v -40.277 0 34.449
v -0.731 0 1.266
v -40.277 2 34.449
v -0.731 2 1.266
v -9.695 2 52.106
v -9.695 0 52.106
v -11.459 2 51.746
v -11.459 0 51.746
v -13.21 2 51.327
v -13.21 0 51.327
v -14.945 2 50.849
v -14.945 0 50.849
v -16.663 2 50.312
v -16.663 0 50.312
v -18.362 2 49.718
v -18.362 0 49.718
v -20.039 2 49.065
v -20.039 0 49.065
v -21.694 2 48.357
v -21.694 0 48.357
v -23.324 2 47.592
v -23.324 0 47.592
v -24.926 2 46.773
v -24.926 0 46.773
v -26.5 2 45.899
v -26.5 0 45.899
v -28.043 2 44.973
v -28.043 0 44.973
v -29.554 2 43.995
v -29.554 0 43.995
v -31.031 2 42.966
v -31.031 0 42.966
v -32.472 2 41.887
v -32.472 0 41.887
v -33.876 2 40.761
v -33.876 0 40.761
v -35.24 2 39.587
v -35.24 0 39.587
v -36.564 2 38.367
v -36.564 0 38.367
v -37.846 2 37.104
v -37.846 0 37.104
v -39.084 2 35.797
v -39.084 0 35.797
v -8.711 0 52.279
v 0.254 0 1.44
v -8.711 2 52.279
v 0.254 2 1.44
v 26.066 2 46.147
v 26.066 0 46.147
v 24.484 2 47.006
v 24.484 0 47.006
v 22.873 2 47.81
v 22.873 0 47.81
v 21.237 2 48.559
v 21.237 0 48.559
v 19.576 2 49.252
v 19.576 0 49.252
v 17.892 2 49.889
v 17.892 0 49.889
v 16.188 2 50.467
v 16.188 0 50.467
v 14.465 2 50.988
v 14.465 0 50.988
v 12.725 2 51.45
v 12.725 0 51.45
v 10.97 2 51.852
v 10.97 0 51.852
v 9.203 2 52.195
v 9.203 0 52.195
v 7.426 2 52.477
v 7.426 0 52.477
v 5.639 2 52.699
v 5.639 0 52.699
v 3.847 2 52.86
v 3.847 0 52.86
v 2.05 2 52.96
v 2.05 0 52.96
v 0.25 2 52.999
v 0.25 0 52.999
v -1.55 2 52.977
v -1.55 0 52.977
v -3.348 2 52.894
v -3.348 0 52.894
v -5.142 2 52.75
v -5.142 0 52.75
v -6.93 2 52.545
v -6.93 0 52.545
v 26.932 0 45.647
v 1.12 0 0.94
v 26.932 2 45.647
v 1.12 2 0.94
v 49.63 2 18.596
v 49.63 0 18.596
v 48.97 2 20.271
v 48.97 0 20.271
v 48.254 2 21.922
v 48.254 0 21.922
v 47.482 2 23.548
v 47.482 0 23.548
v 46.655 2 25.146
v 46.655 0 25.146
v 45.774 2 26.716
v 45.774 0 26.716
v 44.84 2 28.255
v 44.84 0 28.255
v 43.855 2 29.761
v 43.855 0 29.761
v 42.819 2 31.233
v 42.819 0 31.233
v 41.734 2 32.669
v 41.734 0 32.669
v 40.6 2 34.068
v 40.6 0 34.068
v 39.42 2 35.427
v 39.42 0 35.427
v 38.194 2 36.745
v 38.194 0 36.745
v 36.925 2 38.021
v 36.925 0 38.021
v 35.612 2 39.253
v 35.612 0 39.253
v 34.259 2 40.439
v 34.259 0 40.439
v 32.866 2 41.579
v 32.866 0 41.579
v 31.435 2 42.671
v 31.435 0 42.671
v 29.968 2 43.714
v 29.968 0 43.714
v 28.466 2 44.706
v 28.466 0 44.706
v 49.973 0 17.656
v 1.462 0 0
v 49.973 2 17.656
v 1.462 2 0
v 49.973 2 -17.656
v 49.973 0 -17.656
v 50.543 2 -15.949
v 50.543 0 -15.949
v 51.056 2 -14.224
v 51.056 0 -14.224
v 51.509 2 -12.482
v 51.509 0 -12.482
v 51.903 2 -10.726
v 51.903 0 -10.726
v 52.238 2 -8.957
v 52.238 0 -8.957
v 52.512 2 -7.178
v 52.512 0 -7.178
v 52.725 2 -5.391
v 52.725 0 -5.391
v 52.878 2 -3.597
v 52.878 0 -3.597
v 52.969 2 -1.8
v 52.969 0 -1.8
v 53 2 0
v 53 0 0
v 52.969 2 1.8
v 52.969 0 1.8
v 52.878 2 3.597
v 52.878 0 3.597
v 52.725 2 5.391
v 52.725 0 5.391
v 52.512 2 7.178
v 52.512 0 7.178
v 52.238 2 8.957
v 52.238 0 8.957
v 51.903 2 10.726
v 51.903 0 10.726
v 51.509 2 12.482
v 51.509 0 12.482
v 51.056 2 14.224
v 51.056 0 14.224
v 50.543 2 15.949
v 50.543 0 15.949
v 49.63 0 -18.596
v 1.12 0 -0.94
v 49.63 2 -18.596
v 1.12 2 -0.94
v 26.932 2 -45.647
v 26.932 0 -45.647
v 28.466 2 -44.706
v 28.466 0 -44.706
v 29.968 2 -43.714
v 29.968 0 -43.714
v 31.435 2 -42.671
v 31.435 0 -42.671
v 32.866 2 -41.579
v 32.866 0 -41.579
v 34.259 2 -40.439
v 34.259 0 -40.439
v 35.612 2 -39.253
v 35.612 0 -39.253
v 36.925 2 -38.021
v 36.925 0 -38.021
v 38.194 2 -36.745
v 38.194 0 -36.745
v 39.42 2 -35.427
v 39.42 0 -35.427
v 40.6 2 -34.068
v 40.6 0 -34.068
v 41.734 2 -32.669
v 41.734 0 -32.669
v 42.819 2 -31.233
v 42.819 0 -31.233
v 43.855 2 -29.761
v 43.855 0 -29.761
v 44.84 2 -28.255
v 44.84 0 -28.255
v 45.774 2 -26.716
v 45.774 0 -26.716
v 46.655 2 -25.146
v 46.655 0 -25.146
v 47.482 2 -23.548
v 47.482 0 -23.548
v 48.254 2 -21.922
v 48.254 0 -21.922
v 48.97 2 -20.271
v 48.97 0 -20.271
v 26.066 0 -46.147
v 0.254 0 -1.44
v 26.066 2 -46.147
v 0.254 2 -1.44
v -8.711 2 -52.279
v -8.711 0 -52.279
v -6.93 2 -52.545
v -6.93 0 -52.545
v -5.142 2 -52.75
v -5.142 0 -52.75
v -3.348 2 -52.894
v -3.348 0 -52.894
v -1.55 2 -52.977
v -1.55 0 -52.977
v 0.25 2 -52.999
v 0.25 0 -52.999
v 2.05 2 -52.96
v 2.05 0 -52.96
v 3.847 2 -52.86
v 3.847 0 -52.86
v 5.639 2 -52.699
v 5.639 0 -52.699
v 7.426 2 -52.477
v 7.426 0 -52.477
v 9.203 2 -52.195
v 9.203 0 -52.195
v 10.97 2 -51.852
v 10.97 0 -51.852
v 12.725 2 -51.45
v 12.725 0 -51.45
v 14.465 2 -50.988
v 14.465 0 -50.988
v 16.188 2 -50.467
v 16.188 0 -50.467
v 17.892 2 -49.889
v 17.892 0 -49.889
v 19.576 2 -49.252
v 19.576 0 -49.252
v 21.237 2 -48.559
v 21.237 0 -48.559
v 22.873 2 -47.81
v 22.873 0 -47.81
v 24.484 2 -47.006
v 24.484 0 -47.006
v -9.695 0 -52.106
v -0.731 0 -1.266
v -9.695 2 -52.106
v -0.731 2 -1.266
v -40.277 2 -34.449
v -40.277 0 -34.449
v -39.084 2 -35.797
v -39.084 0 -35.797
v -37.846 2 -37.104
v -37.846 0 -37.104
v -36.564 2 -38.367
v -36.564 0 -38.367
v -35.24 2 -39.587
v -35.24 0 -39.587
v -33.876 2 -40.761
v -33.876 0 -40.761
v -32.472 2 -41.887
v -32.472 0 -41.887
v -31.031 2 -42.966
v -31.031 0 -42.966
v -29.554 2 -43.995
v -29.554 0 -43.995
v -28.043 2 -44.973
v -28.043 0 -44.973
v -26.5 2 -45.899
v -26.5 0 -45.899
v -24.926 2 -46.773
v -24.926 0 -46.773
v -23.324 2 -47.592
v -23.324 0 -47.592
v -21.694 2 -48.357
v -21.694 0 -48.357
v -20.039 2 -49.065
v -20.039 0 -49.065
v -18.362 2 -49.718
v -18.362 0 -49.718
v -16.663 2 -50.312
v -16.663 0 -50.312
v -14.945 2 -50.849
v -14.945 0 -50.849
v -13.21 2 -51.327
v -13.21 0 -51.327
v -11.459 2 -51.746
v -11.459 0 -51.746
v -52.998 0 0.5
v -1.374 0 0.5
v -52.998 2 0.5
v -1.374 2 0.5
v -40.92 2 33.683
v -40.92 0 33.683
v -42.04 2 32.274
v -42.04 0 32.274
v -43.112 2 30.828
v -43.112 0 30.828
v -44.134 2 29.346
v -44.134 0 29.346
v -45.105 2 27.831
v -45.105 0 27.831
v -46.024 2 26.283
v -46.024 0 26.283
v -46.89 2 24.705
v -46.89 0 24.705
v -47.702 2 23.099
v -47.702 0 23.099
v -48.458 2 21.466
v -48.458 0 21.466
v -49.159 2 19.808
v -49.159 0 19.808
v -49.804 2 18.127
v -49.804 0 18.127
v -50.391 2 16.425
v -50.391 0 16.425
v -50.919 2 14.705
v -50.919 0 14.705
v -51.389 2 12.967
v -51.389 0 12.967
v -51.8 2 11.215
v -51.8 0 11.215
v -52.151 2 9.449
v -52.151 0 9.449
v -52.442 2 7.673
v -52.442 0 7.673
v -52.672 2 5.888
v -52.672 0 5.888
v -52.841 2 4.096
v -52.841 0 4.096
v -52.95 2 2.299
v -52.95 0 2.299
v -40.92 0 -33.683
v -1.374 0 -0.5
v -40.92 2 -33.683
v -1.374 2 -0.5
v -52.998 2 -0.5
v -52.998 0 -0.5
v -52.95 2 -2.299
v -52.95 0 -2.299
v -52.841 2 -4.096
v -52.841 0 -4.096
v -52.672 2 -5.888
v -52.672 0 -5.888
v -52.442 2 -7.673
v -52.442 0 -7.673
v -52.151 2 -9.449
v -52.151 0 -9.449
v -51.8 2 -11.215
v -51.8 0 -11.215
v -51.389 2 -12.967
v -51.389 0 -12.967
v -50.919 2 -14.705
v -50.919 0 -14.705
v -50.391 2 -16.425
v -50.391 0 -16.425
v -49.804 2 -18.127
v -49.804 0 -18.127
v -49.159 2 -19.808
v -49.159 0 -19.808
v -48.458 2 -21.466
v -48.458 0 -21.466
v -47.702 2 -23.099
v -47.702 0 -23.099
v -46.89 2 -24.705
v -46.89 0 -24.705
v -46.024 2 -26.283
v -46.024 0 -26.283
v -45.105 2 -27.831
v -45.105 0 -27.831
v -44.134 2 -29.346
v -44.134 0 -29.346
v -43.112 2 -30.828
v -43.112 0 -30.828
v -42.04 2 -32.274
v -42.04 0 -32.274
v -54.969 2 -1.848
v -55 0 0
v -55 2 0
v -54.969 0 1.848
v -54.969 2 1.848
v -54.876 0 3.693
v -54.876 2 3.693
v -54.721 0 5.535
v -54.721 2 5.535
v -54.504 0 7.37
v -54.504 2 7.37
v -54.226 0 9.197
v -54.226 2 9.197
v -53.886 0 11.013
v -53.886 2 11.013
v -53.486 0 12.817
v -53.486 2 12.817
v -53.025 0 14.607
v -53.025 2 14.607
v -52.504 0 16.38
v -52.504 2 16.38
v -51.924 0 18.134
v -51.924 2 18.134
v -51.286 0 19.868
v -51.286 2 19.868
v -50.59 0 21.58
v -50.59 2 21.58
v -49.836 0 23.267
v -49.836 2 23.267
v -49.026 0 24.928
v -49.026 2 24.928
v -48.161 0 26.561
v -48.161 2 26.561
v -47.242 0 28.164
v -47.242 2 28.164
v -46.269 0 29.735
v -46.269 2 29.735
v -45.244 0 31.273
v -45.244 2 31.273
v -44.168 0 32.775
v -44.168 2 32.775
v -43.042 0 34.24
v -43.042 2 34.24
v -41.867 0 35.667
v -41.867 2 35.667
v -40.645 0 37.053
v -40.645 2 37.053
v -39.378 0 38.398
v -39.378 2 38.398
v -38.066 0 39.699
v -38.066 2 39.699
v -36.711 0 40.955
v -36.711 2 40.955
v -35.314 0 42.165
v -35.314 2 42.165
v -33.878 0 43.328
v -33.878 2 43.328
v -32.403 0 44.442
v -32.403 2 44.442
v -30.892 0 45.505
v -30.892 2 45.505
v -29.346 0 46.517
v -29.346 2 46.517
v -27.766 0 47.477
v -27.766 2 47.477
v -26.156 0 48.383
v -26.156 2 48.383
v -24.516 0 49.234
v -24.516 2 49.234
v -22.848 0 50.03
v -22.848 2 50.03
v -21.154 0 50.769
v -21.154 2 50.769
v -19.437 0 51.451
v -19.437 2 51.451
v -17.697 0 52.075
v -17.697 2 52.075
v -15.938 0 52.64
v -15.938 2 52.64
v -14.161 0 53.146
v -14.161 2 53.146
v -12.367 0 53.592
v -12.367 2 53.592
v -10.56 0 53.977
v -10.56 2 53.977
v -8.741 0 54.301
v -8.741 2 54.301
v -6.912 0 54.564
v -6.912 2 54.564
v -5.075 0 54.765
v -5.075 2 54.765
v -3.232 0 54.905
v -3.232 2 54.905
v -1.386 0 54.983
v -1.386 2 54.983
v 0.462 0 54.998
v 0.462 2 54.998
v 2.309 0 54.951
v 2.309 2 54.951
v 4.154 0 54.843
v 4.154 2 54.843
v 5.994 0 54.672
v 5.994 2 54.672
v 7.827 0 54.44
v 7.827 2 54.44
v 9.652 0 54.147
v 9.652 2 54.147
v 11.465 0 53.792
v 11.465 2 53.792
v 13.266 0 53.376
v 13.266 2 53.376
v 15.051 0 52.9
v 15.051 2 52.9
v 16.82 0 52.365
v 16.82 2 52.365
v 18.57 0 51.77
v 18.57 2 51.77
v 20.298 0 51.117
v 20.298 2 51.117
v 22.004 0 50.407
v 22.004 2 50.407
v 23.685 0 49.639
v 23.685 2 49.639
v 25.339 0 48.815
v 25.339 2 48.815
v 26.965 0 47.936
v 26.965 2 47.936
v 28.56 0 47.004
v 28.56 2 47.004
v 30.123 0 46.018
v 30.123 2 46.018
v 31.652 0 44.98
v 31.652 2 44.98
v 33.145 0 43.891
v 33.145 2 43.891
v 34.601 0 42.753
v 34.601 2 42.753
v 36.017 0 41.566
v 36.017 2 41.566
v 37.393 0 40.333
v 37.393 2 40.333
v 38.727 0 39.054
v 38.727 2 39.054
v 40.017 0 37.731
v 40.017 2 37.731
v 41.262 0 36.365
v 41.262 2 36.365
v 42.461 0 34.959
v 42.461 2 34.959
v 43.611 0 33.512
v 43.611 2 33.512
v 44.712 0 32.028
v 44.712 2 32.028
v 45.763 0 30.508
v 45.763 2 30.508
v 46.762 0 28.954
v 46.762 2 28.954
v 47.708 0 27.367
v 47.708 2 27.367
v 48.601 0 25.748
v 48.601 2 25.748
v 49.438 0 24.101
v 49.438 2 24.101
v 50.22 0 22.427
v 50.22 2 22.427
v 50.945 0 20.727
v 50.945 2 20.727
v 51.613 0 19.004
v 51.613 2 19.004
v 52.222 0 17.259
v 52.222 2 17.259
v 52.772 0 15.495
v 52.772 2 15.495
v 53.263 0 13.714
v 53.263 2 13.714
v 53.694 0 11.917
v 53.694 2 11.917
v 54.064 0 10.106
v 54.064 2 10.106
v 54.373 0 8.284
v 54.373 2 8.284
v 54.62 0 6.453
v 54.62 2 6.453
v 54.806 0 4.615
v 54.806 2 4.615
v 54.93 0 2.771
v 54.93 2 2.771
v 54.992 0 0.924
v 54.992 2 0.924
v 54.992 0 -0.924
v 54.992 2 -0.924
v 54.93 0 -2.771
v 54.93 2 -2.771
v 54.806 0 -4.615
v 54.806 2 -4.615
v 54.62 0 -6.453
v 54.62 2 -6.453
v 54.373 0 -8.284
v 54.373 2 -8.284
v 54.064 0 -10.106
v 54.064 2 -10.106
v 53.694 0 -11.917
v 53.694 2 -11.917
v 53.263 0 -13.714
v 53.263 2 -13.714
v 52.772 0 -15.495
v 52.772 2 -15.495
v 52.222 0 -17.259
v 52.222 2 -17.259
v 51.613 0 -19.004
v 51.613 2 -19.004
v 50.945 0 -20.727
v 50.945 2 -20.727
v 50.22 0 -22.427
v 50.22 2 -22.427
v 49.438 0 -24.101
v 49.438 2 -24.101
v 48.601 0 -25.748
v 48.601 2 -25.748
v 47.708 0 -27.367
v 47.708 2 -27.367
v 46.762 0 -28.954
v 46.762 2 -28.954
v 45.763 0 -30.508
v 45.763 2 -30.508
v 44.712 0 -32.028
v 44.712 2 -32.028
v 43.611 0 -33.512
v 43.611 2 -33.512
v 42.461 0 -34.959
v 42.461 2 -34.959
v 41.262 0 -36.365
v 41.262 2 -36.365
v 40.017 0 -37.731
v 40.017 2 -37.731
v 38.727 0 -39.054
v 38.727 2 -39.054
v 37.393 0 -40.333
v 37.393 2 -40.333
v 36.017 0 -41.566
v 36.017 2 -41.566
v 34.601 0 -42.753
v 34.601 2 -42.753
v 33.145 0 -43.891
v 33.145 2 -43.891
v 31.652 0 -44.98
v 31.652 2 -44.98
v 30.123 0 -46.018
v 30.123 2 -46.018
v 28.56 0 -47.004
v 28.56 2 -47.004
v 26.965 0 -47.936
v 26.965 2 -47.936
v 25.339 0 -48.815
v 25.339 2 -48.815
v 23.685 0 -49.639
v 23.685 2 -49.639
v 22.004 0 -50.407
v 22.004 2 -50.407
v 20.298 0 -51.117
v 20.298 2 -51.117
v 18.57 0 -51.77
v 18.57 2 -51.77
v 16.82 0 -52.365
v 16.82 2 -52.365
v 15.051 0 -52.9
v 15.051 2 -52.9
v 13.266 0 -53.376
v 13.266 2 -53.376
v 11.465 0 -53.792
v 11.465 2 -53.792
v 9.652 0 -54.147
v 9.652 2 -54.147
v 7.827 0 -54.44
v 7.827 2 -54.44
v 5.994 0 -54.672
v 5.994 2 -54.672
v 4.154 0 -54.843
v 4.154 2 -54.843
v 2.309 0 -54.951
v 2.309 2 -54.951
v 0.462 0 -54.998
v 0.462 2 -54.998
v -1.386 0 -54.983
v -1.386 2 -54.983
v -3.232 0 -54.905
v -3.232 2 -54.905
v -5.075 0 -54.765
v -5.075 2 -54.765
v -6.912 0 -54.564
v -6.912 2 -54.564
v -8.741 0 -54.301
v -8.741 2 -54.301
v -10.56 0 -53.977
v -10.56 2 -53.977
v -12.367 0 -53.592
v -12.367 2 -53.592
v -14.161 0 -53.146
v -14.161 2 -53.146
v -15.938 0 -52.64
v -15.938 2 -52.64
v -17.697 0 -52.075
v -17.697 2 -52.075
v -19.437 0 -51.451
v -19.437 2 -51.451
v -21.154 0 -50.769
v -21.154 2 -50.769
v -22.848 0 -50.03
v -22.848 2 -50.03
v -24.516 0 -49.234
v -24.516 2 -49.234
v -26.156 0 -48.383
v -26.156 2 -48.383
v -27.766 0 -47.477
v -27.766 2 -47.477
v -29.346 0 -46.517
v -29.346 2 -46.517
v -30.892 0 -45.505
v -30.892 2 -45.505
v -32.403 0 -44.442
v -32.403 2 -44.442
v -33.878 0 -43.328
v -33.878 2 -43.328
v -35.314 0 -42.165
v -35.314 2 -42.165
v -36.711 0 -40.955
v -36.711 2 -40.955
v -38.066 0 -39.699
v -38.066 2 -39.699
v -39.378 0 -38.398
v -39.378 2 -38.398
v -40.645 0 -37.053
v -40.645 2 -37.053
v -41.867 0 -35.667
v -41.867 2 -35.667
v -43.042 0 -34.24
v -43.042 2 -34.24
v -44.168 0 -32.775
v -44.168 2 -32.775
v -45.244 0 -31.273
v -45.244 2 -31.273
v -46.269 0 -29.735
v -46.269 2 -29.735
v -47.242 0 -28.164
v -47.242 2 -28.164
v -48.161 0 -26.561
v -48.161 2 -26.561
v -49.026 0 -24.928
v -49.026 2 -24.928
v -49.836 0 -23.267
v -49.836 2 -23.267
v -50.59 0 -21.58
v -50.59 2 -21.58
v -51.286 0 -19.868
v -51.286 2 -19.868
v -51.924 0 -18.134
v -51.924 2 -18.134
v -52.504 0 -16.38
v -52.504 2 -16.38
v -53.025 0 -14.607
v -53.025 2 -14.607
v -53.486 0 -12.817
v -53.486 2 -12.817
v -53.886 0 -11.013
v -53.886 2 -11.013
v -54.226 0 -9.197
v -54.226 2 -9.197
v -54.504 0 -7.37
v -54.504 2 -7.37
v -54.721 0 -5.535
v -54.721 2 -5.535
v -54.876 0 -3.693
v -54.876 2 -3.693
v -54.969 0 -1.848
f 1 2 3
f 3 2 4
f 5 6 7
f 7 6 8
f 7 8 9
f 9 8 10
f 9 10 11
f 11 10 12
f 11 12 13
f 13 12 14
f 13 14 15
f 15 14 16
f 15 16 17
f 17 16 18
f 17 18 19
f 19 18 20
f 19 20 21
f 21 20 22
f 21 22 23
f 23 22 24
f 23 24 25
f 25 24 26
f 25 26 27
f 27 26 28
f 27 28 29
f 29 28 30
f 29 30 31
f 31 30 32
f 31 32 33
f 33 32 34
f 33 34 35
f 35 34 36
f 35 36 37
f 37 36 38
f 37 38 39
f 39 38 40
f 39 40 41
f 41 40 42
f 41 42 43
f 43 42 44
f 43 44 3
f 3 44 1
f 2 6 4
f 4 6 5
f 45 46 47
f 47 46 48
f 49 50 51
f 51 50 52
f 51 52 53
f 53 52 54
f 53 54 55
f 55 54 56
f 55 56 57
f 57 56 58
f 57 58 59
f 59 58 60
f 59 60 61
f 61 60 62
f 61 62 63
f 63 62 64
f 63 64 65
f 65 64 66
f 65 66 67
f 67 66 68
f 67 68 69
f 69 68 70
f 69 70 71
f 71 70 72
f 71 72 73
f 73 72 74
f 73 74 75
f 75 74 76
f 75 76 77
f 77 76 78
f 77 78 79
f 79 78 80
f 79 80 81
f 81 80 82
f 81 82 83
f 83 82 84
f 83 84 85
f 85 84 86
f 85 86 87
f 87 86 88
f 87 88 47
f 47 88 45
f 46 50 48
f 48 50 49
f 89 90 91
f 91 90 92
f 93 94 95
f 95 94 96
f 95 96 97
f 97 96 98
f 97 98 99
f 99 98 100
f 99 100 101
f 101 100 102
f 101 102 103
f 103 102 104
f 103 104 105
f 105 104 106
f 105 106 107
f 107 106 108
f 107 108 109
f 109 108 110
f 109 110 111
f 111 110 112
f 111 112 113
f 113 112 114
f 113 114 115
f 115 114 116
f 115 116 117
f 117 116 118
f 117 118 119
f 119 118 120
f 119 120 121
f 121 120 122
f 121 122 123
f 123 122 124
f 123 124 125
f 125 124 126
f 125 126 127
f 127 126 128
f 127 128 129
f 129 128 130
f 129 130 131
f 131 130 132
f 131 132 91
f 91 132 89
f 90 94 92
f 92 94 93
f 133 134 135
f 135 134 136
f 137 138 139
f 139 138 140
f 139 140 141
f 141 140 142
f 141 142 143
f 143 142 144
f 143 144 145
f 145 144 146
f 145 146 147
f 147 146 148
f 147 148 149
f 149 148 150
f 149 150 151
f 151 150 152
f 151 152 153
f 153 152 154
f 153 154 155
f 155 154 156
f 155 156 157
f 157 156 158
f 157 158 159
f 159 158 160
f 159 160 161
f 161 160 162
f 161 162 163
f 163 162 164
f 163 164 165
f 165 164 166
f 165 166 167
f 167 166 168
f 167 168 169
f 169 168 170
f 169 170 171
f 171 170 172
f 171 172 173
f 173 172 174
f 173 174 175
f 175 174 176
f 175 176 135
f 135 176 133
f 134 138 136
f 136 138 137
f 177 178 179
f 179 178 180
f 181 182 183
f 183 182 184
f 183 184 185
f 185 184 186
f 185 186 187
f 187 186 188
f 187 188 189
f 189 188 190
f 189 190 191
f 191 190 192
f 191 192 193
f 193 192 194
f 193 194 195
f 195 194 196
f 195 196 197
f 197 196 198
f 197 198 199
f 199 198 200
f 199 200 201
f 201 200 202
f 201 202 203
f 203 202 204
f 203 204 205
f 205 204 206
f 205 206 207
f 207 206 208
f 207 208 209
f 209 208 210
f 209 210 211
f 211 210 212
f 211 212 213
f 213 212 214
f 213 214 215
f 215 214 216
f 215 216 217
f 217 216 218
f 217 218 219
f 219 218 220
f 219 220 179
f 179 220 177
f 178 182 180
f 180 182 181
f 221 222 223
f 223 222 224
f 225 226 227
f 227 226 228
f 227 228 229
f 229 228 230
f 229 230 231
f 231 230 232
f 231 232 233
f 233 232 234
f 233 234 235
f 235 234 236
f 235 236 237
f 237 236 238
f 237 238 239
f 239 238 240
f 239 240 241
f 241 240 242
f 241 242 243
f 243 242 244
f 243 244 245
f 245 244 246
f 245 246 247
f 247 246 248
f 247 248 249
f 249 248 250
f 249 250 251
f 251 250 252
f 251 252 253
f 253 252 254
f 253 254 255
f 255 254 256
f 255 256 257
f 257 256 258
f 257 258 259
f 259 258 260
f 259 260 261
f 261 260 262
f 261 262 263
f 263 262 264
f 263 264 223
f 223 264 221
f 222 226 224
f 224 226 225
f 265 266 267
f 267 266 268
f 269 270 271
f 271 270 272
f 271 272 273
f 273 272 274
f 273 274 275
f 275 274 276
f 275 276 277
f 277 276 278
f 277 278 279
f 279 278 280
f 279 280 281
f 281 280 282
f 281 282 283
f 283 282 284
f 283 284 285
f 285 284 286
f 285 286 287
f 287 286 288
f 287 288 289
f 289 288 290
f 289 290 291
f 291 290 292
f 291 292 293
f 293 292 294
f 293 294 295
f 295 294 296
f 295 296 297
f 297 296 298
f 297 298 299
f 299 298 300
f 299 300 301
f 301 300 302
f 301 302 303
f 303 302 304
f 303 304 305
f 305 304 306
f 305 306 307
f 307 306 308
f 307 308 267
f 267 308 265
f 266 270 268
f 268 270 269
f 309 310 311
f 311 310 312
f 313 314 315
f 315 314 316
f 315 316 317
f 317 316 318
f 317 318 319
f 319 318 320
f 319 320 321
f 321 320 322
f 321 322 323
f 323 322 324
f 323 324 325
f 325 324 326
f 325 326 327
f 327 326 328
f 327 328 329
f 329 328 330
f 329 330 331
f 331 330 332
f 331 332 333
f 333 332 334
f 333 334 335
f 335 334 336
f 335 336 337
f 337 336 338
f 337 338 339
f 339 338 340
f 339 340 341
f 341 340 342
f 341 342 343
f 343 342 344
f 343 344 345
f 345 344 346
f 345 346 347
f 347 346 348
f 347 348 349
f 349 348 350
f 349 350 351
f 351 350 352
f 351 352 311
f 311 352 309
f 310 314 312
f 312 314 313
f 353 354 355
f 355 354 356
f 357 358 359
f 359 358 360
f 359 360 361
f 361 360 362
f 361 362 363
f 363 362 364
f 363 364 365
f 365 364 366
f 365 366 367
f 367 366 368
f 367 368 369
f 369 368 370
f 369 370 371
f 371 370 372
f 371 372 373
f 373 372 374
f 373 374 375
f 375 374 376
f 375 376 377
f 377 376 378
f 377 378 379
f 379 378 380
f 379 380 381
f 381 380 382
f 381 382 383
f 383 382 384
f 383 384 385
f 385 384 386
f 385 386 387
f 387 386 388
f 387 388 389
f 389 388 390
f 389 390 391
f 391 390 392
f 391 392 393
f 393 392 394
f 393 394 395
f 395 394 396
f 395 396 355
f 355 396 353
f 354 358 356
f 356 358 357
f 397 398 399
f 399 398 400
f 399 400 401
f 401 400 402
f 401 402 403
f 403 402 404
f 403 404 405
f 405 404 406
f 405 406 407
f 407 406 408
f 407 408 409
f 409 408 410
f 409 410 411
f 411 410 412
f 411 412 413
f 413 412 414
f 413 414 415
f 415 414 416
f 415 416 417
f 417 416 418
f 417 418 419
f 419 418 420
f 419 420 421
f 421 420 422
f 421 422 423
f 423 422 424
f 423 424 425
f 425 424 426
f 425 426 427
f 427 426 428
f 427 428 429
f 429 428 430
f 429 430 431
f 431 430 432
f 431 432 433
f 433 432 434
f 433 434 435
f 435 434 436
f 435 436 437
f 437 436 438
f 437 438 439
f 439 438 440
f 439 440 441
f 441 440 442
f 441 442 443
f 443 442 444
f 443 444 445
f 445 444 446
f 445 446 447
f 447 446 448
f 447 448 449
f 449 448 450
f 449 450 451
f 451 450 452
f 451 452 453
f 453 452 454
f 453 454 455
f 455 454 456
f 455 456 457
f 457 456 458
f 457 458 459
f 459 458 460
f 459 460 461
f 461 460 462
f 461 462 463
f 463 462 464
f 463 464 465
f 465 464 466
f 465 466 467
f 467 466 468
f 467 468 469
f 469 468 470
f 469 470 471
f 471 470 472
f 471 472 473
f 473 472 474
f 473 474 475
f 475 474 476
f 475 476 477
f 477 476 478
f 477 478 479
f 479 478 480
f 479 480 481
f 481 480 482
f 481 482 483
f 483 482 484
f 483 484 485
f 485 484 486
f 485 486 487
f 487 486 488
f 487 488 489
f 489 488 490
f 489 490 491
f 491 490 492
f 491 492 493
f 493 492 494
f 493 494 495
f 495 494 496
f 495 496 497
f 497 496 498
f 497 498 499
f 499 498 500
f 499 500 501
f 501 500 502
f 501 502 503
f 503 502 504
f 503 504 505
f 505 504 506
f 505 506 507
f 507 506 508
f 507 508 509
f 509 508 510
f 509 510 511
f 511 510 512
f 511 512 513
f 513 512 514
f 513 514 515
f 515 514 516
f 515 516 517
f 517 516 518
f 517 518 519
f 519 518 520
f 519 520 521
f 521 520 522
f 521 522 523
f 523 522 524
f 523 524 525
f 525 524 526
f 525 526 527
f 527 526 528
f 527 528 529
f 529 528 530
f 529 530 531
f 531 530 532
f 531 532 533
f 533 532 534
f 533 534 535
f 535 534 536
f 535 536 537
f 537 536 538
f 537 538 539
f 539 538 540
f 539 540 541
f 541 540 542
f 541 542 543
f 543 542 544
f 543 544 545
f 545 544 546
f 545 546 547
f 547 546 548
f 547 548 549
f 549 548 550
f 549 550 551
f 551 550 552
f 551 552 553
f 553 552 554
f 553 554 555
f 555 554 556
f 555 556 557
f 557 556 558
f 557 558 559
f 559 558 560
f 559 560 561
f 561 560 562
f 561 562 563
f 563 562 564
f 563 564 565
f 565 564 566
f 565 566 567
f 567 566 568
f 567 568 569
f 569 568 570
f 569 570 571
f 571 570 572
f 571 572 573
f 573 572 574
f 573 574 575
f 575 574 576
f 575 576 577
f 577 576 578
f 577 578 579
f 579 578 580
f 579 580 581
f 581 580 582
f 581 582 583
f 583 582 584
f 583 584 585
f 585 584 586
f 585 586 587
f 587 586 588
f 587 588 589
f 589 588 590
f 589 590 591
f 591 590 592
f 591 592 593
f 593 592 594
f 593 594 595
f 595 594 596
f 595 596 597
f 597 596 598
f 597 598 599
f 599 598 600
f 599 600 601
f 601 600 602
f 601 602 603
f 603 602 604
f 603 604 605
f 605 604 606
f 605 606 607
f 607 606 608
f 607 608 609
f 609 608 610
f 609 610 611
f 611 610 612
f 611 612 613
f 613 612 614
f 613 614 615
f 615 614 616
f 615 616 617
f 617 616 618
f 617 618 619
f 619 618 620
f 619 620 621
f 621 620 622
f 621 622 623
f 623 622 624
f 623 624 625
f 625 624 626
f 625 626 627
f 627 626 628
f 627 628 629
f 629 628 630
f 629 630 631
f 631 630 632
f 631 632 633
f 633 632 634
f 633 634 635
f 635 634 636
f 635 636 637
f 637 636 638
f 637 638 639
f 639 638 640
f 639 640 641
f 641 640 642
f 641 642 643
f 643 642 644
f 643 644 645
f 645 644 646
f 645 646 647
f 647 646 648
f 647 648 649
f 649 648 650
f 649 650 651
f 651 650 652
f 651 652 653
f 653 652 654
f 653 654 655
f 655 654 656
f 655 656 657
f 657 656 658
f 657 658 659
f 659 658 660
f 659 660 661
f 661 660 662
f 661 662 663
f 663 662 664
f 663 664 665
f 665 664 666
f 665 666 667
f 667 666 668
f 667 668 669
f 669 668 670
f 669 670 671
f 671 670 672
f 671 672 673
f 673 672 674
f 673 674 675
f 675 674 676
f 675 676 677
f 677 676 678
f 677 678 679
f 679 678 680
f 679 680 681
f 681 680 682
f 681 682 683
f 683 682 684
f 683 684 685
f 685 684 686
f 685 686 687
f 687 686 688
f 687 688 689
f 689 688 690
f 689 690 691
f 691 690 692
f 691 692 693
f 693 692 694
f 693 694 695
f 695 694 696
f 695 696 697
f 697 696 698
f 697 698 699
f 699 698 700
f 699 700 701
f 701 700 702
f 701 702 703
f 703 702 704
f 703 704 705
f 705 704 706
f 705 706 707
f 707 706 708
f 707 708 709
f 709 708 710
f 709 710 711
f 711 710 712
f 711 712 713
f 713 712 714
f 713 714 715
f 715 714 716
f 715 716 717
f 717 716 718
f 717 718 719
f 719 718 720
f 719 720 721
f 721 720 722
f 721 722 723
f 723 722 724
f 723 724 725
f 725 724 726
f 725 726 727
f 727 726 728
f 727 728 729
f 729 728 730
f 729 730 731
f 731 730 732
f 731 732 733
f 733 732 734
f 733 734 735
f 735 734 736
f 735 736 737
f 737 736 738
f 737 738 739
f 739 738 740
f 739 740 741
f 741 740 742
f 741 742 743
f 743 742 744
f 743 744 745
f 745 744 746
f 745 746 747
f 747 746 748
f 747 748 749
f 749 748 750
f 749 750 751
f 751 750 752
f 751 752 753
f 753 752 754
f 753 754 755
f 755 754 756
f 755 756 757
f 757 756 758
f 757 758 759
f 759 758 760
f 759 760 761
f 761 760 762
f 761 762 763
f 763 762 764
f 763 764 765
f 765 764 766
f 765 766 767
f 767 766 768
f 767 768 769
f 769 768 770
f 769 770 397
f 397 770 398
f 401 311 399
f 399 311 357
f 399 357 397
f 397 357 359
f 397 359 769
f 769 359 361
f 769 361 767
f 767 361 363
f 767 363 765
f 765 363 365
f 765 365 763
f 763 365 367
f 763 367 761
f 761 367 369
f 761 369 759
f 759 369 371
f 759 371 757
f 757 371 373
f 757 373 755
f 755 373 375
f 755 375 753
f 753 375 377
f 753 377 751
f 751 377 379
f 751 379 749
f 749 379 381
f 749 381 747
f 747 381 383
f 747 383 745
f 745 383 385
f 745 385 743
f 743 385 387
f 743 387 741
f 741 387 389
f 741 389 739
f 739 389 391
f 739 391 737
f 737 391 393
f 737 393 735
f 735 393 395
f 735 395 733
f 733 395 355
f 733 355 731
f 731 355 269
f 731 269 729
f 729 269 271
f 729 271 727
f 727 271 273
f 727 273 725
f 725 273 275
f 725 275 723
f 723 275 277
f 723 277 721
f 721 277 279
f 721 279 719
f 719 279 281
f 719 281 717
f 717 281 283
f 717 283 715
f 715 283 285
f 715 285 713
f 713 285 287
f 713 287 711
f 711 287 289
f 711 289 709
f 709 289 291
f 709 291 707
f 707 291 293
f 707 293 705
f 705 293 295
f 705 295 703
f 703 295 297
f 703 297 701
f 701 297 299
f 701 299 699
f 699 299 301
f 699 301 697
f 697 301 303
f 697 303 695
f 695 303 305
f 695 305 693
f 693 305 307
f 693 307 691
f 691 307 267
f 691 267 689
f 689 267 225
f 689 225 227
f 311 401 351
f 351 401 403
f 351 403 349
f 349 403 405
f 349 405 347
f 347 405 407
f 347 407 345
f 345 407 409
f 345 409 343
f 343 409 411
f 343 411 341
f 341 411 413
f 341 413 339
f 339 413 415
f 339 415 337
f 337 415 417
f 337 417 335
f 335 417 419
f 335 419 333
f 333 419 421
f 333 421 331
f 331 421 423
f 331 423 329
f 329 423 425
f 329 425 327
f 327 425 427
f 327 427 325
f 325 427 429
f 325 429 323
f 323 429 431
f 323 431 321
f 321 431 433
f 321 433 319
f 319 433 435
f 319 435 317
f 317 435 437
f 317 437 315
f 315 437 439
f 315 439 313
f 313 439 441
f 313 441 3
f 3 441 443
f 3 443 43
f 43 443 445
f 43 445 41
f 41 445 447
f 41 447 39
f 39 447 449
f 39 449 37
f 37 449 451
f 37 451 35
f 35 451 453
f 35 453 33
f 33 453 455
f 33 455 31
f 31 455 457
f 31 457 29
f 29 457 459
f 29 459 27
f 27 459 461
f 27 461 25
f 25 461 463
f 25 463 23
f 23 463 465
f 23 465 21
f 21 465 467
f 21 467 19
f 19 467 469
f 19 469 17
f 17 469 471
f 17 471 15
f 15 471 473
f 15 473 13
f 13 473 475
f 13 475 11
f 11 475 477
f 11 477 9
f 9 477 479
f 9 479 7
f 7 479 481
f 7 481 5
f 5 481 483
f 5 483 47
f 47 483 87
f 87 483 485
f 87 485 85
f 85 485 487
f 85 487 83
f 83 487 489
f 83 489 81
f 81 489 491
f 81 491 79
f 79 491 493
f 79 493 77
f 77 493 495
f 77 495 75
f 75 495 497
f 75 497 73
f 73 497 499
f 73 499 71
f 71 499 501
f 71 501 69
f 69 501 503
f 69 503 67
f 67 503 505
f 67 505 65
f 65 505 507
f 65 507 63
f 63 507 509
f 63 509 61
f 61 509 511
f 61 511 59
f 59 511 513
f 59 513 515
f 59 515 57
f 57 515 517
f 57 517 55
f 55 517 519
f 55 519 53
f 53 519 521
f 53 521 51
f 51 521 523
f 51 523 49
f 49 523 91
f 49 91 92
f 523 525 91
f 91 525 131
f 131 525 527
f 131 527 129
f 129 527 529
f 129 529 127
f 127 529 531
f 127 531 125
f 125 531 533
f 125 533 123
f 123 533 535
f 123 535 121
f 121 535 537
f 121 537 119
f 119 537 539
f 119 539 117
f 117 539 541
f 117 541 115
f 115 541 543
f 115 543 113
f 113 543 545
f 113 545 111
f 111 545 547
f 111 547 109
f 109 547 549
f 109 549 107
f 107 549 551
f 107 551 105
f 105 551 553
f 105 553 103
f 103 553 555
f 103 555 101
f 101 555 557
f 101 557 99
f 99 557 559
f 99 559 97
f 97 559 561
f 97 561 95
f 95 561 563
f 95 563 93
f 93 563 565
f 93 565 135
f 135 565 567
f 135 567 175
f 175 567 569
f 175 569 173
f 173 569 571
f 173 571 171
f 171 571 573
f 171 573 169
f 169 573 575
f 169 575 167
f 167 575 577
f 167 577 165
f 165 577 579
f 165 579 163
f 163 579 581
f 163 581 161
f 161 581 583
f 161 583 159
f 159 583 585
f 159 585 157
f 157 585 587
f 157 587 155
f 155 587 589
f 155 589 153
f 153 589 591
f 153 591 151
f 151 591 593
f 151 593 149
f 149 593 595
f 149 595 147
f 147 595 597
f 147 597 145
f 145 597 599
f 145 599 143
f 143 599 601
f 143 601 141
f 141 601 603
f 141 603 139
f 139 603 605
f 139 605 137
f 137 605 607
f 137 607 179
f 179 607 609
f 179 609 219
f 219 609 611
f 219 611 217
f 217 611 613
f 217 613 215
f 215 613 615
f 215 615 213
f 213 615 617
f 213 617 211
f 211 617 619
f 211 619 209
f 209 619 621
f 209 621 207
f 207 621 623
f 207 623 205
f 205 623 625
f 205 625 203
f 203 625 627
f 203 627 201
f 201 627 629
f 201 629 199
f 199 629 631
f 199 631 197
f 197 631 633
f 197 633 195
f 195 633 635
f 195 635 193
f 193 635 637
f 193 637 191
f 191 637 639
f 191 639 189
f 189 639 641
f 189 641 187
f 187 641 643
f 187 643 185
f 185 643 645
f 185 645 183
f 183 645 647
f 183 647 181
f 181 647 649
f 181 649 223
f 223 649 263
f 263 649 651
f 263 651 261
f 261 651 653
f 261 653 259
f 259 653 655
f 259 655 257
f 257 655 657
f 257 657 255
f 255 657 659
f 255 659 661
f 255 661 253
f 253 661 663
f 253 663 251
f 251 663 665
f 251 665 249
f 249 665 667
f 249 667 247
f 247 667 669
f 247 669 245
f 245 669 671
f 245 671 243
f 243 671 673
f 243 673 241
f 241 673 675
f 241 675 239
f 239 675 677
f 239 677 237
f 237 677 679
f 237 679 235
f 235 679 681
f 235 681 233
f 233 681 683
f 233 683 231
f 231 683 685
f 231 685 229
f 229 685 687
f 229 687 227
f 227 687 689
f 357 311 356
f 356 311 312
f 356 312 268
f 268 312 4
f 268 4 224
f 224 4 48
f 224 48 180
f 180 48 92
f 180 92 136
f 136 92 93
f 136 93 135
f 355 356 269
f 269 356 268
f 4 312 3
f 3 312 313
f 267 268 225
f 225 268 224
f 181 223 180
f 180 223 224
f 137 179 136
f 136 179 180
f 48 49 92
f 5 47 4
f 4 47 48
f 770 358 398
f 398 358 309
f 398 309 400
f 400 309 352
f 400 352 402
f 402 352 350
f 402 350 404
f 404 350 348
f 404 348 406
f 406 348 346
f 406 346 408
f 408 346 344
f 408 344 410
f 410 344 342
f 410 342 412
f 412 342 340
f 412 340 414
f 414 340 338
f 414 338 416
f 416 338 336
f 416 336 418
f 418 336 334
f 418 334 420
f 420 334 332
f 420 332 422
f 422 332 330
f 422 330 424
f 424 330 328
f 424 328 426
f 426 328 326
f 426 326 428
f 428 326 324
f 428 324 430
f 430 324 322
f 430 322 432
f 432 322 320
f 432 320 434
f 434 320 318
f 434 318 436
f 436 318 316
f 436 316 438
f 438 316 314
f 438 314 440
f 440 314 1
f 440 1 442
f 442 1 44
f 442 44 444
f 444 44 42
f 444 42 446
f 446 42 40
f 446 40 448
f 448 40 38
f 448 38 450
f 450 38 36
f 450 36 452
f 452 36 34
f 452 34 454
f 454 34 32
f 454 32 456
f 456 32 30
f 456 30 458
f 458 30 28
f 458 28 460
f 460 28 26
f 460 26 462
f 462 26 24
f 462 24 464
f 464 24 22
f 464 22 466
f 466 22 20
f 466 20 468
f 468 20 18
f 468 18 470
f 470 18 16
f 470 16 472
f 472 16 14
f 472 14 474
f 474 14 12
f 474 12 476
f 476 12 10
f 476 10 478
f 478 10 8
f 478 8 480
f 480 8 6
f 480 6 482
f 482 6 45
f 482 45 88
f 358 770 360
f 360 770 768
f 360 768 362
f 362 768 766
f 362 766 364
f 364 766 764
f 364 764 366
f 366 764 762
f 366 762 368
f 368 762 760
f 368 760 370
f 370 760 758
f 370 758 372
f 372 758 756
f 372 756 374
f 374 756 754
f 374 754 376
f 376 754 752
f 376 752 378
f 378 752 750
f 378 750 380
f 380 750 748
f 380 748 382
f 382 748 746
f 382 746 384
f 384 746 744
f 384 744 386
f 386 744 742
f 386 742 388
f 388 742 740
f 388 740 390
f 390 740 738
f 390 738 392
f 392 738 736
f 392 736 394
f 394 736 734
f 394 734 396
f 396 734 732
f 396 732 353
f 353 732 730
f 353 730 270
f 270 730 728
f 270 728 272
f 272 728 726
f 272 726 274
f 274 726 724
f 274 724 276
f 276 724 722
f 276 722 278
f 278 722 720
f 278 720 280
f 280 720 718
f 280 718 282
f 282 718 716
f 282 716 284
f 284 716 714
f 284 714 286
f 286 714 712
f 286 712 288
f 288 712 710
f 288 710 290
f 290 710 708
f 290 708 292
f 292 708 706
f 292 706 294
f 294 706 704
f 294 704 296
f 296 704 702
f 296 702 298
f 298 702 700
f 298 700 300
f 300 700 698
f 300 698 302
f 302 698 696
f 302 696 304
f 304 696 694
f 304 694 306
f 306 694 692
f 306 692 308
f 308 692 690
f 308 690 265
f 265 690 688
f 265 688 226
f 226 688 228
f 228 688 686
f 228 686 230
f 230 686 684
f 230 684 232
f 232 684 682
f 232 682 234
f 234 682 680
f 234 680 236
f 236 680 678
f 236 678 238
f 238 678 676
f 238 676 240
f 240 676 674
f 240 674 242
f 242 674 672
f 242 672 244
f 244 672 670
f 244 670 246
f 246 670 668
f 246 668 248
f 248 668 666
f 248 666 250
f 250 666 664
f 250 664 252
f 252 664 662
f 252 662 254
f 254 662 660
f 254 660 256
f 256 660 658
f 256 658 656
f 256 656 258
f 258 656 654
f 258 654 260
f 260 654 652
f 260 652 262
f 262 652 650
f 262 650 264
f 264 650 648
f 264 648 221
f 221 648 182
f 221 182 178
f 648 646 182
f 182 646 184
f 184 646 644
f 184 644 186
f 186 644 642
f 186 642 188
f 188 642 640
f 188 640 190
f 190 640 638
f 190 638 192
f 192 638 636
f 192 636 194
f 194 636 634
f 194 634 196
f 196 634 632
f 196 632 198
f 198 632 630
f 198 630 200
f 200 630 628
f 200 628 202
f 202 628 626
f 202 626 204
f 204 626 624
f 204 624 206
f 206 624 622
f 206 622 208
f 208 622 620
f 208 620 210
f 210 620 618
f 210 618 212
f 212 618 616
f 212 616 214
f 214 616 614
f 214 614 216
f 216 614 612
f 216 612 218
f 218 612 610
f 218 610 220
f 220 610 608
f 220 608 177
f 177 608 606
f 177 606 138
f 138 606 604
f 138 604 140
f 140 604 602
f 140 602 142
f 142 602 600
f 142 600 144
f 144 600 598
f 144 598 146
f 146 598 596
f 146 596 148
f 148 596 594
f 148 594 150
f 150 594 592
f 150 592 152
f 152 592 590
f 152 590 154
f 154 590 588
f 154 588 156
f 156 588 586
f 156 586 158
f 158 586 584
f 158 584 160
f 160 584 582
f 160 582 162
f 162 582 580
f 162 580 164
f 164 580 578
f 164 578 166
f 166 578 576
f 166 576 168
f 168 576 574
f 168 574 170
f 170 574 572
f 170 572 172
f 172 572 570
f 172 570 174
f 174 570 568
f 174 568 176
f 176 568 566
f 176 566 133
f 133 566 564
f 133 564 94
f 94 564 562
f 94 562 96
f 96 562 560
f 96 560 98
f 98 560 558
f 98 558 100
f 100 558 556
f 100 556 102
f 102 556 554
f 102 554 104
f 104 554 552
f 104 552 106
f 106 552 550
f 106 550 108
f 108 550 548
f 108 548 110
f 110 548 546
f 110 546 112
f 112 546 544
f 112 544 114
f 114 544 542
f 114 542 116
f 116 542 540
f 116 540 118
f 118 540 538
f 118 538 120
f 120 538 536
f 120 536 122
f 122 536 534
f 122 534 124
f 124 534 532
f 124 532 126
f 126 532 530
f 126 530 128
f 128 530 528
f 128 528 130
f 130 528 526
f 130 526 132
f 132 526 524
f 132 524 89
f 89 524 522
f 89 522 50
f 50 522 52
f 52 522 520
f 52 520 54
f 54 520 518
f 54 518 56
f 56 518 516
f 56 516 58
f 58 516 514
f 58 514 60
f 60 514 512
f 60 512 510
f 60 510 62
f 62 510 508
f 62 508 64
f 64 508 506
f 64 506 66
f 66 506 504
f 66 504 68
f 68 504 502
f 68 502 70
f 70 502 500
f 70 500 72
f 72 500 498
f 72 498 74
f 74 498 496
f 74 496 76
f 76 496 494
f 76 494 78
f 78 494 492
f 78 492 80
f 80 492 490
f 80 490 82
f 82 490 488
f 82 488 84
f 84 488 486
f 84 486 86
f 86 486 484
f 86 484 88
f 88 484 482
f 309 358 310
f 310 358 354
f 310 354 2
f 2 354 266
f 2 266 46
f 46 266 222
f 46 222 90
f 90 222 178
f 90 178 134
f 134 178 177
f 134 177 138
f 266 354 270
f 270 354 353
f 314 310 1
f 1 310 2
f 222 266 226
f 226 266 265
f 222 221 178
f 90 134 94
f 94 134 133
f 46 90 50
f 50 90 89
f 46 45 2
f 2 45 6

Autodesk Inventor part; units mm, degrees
ref_plane "YZ Plane" through (0, 0, 0) normal (1, 0, 0) x (0, 1, 0)
ref_plane "XZ Plane" through (0, 0, 0) normal (0, 1, 0) x (-1, 0, 0)
ref_plane "XY Plane" through (0, 0, 0) normal (0, 0, 1) x (1, 0, 0)
sketch "Эскиз1" plane through (0, 0, 0) normal (0, 1, 0) x (-1, 0, 0)
  circle A0 centre (0, 0) radius 55
  line L0 (0, 0) -> (0, -0.5)
  line L1 (0, 0) -> (0, 0.5)
  line L2 (1.3737, 0.5) -> (52.9976, 0.5)
  arc A1 (52.9976, 0.5) -> (40.9199, 33.6832) centre (0, 0) ccw
  arc A2 (40.2772, 34.4492) -> (9.6953, 52.1057) centre (0, 0) ccw
  arc A3 (8.7105, 52.2793) -> (-26.0658, 46.1473) centre (0, 0) ccw
  arc A4 (-26.9318, 45.6473) -> (-49.6305, 18.5961) centre (0, 0) ccw
  arc A5 (-49.9725, 17.6564) -> (-49.9725, -17.6564) centre (0, 0) ccw
  arc A6 (-49.6305, -18.5961) -> (-26.9318, -45.6473) centre (0, 0) ccw
  arc A7 (-26.0658, -46.1473) -> (8.7105, -52.2793) centre (0, 0) ccw
  arc A8 (9.6953, -52.1057) -> (40.2772, -34.4492) centre (0, 0) ccw
  arc A9 (40.9199, -33.6832) -> (52.9976, -0.5) centre (0, 0) ccw
  line L3 (-1.1199, 0.9397) -> (-49.6305, 18.5961)
  line L4 (-1.1199, 0.9397) -> (-26.9318, 45.6473)
  line L5 (-1.4619, 0) -> (-49.9725, -17.6564)
  line L6 (-1.4619, 0) -> (-49.9725, 17.6564)
  line L7 (-1.1199, -0.9397) -> (-26.9318, -45.6473)
  line L8 (0.0882, -0.5) -> (0, -0.5321)
  line L9 (-1.1199, -0.9397) -> (-49.6305, -18.5961)
  line L10 (-0.2539, -1.4397) -> (8.7105, -52.2793)
  line L11 (0.731, -1.266) -> (40.2772, -34.4492)
  line L12 (0.3889, -0.3264) -> (0.342, -0.4076)
  line L13 (-0.2539, -1.4397) -> (-26.0658, -46.1473)
  line L14 (0.731, -1.266) -> (9.6953, -52.1057)
  line L15 (0.3214, -0.383) -> (0.3889, -0.3264)
  line L16 (0.7779, 0) -> (40.9199, 33.6832)
  line L17 (0.7779, 0) -> (40.9199, -33.6832)
  line L18 (0.731, 1.266) -> (9.6953, 52.1057)
  line L19 (0.731, 1.266) -> (40.2772, 34.4492)
  line L20 (-0.2539, 1.4397) -> (-26.0658, 46.1473)
  line L21 (-0.2539, 1.4397) -> (8.7105, 52.2793)
  line L22 (0, -0.5) -> (0.0882, -0.5)
  line L23 (1.3737, -0.5) -> (52.9976, -0.5)
  dimension "d0" = 110
  dimension "d2" = 0.5
  dimension "d3" = 0.5
extrude "Выдавливание1" add sketch "Эскиз1" along normal blind 2
